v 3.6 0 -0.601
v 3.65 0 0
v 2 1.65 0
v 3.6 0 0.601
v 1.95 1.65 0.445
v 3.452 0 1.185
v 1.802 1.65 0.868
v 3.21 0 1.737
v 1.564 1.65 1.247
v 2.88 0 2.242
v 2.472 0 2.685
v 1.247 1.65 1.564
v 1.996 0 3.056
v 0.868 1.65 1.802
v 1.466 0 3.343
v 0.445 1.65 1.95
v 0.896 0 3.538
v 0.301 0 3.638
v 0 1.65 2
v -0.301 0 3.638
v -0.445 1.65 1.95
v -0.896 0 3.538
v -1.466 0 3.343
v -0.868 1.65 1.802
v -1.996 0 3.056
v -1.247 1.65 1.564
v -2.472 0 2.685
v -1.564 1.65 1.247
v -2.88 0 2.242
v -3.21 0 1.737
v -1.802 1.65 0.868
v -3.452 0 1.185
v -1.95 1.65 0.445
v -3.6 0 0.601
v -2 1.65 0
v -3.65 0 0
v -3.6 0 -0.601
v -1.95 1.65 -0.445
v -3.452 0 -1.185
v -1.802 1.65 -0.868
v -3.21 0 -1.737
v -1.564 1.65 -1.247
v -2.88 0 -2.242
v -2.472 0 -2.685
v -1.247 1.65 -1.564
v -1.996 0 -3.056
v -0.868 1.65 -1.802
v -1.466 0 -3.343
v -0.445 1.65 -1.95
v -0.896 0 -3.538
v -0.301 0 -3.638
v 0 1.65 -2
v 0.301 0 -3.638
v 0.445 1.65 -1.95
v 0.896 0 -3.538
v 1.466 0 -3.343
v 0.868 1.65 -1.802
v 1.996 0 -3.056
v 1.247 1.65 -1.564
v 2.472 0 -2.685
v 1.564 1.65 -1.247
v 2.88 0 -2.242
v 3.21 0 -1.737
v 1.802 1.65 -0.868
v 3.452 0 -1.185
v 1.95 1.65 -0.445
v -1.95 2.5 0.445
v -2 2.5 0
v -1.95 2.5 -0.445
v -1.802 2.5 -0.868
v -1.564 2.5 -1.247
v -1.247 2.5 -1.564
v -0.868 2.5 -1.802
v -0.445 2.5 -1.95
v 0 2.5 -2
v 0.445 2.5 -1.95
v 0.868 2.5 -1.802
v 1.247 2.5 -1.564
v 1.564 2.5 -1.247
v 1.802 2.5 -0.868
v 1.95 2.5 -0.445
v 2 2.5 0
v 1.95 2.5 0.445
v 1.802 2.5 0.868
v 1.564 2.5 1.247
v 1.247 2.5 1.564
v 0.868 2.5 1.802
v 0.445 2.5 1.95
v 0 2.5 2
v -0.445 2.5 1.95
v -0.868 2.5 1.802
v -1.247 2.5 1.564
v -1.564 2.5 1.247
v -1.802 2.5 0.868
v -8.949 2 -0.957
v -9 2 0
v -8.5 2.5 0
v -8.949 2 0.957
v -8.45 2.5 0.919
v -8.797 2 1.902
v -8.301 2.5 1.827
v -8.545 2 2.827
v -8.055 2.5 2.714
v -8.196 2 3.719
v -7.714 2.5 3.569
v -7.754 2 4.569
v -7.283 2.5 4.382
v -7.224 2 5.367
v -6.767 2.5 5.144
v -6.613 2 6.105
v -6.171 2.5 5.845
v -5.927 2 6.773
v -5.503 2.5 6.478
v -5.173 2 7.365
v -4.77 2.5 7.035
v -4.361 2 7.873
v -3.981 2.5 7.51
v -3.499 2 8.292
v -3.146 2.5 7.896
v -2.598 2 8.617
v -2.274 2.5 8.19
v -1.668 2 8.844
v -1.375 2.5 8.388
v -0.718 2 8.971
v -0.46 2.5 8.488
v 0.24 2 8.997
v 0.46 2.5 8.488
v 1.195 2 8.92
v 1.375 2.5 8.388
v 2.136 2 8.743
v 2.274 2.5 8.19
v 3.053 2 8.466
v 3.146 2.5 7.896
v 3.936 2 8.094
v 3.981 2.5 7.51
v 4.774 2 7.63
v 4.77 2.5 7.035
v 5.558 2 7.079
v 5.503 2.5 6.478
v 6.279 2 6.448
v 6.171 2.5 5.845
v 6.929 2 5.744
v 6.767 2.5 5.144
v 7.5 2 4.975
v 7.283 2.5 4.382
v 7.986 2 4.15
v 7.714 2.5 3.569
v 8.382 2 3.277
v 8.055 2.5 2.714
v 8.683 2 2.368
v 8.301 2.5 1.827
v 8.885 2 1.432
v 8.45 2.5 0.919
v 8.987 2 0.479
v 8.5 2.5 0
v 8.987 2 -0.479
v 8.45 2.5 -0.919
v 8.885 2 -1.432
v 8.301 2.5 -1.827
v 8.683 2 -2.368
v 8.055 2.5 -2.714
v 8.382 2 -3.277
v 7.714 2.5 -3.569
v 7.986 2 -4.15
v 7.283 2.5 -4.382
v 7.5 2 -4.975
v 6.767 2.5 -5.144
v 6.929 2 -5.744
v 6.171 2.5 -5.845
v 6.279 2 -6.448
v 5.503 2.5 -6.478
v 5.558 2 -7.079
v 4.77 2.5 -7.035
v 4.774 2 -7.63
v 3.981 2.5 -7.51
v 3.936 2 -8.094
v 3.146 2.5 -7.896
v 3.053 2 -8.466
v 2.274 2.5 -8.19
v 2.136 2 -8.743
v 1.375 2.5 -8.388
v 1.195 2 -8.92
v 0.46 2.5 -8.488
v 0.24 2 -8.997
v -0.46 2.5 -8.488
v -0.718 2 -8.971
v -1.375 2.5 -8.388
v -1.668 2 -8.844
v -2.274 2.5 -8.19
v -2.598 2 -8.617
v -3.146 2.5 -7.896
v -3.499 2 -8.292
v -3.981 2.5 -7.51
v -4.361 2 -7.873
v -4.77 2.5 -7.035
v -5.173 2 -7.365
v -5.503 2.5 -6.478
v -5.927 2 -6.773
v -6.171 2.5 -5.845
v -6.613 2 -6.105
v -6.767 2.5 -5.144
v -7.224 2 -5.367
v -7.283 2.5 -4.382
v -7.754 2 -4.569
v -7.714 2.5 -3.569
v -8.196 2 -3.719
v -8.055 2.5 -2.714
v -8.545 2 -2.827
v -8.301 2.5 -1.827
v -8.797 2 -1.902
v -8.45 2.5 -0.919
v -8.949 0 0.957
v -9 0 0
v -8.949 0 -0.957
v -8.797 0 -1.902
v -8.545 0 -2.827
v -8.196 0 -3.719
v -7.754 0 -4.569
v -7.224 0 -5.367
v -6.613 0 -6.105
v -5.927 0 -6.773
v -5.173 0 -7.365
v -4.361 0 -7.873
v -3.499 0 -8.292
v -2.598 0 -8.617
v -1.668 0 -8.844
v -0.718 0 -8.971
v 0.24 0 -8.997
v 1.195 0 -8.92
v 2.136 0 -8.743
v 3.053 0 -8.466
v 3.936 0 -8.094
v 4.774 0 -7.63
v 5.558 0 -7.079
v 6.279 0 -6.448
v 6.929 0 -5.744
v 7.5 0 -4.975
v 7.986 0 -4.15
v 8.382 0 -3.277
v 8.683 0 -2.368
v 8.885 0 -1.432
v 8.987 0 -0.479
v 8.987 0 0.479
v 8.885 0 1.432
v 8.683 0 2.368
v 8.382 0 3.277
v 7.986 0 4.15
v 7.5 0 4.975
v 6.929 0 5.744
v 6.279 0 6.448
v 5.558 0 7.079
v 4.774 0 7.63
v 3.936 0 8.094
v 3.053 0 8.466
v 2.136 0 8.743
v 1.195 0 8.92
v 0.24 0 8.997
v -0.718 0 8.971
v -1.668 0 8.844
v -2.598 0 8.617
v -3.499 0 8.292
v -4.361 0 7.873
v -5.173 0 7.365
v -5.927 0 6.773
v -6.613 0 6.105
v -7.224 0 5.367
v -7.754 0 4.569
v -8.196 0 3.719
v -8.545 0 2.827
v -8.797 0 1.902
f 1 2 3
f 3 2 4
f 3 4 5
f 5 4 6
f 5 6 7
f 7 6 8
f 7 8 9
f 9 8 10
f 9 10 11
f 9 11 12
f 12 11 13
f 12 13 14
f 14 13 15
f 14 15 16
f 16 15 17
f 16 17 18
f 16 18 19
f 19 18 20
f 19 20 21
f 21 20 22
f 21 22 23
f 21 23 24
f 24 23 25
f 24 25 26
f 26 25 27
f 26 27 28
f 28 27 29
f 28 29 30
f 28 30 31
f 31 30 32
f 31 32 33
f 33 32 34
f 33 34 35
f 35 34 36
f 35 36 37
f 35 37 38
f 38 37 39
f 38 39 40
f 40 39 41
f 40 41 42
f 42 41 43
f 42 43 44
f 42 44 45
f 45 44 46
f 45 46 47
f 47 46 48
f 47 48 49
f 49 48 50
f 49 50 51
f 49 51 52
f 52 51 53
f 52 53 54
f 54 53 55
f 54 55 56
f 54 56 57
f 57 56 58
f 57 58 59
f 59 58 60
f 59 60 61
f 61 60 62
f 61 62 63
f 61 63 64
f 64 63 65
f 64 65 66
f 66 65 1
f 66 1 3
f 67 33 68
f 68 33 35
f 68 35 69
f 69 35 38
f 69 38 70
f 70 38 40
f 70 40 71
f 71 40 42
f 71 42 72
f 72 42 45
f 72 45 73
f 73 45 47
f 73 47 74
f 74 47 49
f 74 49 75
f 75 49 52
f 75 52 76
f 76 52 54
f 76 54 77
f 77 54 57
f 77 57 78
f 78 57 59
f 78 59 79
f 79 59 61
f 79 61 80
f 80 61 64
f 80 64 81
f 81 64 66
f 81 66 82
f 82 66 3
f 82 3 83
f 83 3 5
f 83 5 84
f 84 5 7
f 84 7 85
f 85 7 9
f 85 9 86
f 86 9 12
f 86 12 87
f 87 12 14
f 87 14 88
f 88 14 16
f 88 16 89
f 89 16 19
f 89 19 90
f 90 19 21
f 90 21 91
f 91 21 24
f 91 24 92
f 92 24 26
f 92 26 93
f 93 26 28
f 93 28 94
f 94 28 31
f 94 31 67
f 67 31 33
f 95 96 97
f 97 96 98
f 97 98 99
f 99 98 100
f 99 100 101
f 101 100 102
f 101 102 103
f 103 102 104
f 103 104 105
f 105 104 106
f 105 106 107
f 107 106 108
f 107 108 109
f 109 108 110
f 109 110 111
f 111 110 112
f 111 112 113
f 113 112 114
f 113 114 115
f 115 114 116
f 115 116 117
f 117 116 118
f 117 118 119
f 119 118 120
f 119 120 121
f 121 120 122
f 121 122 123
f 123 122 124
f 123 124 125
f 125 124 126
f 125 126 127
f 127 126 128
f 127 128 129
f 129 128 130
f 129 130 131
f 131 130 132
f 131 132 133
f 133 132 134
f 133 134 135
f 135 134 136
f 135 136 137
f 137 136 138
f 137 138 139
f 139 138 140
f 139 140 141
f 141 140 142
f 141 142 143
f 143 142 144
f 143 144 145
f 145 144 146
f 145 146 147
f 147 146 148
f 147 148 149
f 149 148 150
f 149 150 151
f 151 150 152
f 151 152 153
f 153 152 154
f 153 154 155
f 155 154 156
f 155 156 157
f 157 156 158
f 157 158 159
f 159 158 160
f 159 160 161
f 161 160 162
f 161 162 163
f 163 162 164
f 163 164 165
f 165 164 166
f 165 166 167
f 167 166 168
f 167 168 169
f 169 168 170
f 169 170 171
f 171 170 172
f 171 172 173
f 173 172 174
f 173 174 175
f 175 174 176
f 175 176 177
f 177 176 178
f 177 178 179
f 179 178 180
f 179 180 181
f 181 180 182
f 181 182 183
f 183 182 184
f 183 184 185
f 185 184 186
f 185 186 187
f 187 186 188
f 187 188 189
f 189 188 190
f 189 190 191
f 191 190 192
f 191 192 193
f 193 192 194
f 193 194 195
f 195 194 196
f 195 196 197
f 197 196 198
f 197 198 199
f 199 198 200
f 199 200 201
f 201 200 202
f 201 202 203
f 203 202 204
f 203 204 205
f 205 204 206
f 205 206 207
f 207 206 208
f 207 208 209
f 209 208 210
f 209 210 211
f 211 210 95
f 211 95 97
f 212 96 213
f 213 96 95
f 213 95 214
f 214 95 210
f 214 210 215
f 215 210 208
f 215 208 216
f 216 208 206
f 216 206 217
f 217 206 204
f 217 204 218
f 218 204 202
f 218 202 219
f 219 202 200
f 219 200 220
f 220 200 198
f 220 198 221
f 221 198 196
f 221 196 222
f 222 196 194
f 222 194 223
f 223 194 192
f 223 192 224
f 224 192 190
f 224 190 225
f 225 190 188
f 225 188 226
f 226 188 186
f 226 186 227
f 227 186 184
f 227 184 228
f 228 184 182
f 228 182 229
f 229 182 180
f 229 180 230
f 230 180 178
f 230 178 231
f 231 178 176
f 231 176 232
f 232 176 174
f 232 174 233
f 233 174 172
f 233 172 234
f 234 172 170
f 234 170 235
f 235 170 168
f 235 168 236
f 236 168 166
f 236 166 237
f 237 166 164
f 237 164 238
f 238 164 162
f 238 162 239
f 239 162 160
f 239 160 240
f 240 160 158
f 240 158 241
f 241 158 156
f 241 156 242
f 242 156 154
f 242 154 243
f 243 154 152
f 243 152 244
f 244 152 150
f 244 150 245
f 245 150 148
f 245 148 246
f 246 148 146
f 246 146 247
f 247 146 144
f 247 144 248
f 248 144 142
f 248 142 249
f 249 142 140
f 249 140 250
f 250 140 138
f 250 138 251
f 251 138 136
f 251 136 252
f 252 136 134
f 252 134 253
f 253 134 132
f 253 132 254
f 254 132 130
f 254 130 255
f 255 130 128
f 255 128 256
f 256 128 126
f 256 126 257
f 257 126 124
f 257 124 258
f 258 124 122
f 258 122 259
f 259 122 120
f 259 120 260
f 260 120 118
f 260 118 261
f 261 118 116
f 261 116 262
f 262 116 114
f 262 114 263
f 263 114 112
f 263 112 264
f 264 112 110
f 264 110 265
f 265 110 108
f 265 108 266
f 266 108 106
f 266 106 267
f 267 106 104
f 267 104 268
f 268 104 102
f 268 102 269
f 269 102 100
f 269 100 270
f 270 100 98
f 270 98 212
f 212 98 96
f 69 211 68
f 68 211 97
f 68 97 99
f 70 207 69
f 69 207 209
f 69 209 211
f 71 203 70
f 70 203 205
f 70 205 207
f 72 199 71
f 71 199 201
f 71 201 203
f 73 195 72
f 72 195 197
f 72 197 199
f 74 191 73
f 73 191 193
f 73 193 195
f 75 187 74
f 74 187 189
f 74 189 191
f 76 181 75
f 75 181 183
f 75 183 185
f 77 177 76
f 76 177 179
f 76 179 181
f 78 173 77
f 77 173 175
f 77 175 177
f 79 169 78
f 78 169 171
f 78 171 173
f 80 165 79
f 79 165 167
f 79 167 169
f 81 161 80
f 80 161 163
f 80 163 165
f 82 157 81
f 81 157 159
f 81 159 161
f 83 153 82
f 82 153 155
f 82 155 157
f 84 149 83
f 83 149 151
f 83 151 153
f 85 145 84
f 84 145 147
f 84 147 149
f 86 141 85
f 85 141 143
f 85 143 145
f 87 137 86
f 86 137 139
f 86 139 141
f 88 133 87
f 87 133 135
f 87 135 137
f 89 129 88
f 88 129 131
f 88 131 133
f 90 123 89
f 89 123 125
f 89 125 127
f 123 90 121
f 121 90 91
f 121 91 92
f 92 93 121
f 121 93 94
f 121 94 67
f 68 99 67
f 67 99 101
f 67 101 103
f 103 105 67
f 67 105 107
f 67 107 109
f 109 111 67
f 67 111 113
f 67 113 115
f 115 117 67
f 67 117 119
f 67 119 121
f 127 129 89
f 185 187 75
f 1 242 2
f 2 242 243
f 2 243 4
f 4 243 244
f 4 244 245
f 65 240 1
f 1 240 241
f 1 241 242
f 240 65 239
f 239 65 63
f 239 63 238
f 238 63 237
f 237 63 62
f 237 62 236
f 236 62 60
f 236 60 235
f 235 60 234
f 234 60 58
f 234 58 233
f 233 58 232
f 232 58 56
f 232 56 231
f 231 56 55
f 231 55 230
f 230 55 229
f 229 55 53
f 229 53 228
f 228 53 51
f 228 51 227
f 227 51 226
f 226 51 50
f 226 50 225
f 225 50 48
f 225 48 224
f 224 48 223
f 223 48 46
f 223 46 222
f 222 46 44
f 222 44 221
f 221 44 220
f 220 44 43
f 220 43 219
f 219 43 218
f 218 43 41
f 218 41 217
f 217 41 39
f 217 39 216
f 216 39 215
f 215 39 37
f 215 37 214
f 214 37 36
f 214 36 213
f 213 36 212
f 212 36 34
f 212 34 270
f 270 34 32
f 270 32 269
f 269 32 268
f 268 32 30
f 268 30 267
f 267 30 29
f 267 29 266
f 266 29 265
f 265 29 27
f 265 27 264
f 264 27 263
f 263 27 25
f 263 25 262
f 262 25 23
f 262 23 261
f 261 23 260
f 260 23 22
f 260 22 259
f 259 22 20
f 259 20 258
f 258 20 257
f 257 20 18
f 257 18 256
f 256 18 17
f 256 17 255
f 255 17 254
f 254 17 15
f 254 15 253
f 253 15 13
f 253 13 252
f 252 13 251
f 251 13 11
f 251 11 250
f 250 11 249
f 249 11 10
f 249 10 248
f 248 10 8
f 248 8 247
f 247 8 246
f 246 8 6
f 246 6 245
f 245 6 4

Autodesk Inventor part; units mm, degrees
ref_plane "YZ Plane" through (0, 0, 0) normal (1, 0, 0) x (0, 1, 0)
ref_plane "XZ Plane" through (0, 0, 0) normal (0, 1, 0) x (-1, 0, 0)
ref_plane "XY Plane" through (0, 0, 0) normal (0, 0, 1) x (1, 0, 0)
sketch "Boceto1" plane through (0, 0, 0) normal (0, 1, 0) x (-1, 0, 0)
  circle A0 centre (0, 0) radius 9
  dimension "d0" = 18
extrude "Extrusión1" add sketch "Boceto1" along normal blind 2.5
chamfer "Chaflán1" distance 0.5 angle 45 1 edges at (9, 2.5, 0)
sketch "Boceto2" plane through (0, 0, 0) normal (0, -1, 0) x (1, 0, 0)
  circle A0 centre (0, 0) radius 8.5 projected
  line L0 (9, 0) -> (0, 0)
hole "Agujero1" at (0, 0, 0) direction (0, 1, 0) diameter 4 end through all countersink diameter 7.3 countersink angle 90
properties part number "markers_base2"
